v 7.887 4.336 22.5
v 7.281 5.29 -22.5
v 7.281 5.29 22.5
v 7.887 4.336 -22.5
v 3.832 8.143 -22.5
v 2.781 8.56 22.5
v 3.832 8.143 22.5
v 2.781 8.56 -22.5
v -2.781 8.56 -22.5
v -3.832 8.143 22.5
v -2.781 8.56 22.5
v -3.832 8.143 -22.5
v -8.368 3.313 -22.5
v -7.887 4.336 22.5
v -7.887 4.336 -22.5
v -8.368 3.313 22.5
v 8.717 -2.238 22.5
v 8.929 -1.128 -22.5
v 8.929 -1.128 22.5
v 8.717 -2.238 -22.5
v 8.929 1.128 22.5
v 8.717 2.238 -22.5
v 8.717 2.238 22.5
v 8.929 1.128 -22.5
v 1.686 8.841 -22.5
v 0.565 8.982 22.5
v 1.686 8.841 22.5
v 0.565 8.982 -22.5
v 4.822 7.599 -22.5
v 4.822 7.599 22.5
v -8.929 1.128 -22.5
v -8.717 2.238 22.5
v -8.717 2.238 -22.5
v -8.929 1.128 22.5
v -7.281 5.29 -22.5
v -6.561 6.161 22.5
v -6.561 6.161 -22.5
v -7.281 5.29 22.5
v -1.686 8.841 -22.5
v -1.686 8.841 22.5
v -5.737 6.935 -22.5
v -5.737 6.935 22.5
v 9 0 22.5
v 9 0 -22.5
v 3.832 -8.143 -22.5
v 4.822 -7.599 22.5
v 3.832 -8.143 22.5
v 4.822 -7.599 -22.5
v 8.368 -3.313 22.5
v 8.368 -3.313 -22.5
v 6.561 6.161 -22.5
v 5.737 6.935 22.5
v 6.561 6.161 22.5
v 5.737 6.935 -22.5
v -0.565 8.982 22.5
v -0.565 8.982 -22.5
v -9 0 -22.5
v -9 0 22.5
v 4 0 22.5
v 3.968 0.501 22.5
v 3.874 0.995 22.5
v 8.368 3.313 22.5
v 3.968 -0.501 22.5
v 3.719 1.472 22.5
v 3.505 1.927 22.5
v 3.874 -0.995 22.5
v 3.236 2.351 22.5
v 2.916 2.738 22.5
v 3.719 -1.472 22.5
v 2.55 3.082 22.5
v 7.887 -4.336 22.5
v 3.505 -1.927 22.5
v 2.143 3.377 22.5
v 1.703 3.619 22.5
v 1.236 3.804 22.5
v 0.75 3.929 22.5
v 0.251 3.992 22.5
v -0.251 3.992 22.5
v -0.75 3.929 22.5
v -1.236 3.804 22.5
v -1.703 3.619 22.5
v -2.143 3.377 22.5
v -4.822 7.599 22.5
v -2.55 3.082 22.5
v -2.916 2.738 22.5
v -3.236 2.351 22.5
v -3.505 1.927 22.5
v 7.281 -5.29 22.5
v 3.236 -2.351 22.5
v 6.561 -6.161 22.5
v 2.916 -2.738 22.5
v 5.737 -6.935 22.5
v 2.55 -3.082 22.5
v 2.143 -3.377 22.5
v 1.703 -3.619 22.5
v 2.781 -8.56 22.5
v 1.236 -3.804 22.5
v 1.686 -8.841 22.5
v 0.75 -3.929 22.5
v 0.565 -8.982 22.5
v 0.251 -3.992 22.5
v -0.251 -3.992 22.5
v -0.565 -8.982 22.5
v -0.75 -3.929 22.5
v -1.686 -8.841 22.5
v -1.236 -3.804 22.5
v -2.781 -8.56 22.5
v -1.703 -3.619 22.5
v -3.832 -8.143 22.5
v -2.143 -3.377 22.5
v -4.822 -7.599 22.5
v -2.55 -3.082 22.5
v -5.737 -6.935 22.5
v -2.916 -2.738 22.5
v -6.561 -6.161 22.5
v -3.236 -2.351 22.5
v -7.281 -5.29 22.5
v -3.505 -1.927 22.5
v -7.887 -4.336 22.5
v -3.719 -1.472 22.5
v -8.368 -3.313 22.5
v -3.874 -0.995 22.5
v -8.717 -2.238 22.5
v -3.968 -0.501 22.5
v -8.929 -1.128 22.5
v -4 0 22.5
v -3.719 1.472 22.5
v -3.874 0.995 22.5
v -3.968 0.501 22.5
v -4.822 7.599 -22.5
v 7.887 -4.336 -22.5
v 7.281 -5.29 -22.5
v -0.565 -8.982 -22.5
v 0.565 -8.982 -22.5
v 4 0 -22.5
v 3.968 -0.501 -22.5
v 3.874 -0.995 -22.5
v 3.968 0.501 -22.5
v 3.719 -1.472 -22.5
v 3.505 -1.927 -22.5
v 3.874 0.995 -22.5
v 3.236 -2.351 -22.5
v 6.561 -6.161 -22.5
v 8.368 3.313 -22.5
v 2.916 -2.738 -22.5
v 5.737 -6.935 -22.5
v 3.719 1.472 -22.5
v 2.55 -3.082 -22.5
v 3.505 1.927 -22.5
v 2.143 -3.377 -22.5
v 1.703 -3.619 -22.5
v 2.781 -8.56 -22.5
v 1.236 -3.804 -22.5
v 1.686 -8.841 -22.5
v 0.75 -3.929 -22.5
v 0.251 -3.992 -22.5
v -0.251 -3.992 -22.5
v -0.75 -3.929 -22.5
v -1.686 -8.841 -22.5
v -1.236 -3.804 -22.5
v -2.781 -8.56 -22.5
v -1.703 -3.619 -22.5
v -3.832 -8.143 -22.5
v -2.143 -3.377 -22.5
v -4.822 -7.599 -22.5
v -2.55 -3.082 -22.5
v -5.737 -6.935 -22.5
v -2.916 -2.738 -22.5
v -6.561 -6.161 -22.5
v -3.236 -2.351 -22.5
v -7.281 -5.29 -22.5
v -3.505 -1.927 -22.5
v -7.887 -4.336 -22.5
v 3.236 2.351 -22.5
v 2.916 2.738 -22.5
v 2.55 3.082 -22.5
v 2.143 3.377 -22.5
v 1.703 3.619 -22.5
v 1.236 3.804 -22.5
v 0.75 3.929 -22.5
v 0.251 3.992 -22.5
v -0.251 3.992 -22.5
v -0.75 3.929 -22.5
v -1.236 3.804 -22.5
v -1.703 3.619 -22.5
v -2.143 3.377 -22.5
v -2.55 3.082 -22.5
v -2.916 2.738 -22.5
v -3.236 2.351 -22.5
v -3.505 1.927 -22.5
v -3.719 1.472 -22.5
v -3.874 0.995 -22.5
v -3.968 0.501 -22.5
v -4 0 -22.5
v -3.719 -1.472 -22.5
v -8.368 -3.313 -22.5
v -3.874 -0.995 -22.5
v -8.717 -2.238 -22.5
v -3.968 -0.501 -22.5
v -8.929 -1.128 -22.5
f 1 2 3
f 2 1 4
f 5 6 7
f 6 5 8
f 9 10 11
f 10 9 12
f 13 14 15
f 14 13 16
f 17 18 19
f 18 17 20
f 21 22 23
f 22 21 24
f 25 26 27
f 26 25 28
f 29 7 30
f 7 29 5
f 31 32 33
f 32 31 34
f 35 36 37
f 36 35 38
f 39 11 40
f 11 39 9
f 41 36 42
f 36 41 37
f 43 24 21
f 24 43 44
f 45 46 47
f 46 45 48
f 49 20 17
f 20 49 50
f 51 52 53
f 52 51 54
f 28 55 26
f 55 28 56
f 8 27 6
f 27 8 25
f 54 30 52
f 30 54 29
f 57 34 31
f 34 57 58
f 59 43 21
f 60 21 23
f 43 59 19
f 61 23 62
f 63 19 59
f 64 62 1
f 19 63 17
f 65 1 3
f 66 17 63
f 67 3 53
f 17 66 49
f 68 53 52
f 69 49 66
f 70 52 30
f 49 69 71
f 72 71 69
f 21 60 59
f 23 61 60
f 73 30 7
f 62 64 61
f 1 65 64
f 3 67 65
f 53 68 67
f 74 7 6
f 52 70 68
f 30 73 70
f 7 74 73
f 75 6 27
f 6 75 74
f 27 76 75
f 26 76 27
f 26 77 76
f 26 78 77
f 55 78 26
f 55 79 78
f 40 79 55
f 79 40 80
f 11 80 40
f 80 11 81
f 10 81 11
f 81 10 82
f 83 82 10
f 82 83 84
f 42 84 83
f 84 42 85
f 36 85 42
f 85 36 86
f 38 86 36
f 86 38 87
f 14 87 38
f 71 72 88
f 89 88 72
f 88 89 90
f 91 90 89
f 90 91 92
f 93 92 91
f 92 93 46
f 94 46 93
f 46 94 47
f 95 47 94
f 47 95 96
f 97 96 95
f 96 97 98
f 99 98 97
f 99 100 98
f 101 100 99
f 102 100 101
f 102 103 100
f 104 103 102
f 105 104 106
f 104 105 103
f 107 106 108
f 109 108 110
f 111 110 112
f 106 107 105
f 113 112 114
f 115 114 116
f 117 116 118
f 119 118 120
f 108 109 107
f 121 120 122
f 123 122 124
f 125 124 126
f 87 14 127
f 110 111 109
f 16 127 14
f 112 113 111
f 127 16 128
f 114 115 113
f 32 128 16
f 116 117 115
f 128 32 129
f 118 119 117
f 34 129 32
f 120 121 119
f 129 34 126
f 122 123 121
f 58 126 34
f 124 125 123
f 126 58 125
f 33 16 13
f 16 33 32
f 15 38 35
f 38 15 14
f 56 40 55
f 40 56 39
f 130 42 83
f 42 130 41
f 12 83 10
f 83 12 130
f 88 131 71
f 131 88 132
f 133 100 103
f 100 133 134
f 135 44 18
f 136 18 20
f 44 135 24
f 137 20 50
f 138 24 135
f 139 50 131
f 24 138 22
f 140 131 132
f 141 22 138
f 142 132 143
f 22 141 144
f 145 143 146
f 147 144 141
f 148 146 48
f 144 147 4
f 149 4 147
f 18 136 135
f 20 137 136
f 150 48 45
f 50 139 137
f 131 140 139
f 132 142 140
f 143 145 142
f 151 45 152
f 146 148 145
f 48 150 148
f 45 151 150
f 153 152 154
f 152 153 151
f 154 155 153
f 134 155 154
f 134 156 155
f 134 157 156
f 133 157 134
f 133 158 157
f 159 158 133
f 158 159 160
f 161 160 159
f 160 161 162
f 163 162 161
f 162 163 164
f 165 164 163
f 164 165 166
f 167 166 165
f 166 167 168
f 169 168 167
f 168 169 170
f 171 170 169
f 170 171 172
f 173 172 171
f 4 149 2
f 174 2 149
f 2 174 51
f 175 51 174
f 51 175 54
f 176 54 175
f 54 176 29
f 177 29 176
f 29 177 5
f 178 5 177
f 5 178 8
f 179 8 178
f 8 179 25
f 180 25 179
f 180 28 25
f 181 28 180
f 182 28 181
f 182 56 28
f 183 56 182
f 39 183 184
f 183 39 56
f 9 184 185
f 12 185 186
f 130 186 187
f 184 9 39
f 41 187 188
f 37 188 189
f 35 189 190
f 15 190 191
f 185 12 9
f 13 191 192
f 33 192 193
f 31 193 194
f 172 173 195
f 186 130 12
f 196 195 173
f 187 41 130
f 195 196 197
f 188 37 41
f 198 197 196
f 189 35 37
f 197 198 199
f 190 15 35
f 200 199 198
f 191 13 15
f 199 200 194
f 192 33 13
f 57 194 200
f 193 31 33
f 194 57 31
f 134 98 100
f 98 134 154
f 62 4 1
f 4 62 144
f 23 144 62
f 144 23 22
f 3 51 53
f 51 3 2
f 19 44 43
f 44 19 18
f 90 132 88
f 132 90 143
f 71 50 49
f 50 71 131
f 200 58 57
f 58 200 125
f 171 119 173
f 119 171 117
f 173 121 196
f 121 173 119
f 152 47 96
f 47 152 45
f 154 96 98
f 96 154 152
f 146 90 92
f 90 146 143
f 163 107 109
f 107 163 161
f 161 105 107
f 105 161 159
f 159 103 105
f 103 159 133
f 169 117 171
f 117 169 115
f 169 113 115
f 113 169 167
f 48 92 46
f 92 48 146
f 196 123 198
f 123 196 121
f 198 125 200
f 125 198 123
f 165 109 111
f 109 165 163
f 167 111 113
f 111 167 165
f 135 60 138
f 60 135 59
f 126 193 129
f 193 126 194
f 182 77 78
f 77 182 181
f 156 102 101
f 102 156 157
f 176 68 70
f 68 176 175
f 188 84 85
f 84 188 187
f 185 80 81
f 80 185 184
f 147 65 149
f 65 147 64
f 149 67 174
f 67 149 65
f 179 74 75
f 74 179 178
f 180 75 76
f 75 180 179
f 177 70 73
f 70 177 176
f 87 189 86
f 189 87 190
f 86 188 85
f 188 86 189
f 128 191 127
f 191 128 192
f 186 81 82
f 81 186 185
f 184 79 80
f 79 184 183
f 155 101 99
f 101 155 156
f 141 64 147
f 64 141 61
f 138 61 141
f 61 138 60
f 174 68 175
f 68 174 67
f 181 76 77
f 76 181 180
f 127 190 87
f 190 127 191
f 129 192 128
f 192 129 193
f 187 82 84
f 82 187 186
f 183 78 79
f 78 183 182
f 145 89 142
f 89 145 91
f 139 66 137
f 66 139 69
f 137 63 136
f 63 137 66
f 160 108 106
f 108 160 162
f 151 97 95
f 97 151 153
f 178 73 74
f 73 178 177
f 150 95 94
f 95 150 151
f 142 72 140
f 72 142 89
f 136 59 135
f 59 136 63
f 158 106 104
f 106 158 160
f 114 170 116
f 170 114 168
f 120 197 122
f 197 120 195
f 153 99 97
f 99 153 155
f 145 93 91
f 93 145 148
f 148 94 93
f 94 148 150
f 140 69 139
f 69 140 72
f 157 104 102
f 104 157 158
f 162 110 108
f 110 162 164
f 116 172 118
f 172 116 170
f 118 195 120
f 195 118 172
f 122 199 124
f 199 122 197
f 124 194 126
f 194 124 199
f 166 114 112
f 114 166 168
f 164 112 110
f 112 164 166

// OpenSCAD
$fn = 50;


difference() {
	union() {
		translate(v = [0, 0, -22.5000000000]) {
			cylinder(h = 45, r = 9.0000000000);
		}
	}
	union() {
		translate(v = [0, 0, -100.0000000000]) {
			cylinder(h = 200, r = 4.0000000000);
		}
	}
}
